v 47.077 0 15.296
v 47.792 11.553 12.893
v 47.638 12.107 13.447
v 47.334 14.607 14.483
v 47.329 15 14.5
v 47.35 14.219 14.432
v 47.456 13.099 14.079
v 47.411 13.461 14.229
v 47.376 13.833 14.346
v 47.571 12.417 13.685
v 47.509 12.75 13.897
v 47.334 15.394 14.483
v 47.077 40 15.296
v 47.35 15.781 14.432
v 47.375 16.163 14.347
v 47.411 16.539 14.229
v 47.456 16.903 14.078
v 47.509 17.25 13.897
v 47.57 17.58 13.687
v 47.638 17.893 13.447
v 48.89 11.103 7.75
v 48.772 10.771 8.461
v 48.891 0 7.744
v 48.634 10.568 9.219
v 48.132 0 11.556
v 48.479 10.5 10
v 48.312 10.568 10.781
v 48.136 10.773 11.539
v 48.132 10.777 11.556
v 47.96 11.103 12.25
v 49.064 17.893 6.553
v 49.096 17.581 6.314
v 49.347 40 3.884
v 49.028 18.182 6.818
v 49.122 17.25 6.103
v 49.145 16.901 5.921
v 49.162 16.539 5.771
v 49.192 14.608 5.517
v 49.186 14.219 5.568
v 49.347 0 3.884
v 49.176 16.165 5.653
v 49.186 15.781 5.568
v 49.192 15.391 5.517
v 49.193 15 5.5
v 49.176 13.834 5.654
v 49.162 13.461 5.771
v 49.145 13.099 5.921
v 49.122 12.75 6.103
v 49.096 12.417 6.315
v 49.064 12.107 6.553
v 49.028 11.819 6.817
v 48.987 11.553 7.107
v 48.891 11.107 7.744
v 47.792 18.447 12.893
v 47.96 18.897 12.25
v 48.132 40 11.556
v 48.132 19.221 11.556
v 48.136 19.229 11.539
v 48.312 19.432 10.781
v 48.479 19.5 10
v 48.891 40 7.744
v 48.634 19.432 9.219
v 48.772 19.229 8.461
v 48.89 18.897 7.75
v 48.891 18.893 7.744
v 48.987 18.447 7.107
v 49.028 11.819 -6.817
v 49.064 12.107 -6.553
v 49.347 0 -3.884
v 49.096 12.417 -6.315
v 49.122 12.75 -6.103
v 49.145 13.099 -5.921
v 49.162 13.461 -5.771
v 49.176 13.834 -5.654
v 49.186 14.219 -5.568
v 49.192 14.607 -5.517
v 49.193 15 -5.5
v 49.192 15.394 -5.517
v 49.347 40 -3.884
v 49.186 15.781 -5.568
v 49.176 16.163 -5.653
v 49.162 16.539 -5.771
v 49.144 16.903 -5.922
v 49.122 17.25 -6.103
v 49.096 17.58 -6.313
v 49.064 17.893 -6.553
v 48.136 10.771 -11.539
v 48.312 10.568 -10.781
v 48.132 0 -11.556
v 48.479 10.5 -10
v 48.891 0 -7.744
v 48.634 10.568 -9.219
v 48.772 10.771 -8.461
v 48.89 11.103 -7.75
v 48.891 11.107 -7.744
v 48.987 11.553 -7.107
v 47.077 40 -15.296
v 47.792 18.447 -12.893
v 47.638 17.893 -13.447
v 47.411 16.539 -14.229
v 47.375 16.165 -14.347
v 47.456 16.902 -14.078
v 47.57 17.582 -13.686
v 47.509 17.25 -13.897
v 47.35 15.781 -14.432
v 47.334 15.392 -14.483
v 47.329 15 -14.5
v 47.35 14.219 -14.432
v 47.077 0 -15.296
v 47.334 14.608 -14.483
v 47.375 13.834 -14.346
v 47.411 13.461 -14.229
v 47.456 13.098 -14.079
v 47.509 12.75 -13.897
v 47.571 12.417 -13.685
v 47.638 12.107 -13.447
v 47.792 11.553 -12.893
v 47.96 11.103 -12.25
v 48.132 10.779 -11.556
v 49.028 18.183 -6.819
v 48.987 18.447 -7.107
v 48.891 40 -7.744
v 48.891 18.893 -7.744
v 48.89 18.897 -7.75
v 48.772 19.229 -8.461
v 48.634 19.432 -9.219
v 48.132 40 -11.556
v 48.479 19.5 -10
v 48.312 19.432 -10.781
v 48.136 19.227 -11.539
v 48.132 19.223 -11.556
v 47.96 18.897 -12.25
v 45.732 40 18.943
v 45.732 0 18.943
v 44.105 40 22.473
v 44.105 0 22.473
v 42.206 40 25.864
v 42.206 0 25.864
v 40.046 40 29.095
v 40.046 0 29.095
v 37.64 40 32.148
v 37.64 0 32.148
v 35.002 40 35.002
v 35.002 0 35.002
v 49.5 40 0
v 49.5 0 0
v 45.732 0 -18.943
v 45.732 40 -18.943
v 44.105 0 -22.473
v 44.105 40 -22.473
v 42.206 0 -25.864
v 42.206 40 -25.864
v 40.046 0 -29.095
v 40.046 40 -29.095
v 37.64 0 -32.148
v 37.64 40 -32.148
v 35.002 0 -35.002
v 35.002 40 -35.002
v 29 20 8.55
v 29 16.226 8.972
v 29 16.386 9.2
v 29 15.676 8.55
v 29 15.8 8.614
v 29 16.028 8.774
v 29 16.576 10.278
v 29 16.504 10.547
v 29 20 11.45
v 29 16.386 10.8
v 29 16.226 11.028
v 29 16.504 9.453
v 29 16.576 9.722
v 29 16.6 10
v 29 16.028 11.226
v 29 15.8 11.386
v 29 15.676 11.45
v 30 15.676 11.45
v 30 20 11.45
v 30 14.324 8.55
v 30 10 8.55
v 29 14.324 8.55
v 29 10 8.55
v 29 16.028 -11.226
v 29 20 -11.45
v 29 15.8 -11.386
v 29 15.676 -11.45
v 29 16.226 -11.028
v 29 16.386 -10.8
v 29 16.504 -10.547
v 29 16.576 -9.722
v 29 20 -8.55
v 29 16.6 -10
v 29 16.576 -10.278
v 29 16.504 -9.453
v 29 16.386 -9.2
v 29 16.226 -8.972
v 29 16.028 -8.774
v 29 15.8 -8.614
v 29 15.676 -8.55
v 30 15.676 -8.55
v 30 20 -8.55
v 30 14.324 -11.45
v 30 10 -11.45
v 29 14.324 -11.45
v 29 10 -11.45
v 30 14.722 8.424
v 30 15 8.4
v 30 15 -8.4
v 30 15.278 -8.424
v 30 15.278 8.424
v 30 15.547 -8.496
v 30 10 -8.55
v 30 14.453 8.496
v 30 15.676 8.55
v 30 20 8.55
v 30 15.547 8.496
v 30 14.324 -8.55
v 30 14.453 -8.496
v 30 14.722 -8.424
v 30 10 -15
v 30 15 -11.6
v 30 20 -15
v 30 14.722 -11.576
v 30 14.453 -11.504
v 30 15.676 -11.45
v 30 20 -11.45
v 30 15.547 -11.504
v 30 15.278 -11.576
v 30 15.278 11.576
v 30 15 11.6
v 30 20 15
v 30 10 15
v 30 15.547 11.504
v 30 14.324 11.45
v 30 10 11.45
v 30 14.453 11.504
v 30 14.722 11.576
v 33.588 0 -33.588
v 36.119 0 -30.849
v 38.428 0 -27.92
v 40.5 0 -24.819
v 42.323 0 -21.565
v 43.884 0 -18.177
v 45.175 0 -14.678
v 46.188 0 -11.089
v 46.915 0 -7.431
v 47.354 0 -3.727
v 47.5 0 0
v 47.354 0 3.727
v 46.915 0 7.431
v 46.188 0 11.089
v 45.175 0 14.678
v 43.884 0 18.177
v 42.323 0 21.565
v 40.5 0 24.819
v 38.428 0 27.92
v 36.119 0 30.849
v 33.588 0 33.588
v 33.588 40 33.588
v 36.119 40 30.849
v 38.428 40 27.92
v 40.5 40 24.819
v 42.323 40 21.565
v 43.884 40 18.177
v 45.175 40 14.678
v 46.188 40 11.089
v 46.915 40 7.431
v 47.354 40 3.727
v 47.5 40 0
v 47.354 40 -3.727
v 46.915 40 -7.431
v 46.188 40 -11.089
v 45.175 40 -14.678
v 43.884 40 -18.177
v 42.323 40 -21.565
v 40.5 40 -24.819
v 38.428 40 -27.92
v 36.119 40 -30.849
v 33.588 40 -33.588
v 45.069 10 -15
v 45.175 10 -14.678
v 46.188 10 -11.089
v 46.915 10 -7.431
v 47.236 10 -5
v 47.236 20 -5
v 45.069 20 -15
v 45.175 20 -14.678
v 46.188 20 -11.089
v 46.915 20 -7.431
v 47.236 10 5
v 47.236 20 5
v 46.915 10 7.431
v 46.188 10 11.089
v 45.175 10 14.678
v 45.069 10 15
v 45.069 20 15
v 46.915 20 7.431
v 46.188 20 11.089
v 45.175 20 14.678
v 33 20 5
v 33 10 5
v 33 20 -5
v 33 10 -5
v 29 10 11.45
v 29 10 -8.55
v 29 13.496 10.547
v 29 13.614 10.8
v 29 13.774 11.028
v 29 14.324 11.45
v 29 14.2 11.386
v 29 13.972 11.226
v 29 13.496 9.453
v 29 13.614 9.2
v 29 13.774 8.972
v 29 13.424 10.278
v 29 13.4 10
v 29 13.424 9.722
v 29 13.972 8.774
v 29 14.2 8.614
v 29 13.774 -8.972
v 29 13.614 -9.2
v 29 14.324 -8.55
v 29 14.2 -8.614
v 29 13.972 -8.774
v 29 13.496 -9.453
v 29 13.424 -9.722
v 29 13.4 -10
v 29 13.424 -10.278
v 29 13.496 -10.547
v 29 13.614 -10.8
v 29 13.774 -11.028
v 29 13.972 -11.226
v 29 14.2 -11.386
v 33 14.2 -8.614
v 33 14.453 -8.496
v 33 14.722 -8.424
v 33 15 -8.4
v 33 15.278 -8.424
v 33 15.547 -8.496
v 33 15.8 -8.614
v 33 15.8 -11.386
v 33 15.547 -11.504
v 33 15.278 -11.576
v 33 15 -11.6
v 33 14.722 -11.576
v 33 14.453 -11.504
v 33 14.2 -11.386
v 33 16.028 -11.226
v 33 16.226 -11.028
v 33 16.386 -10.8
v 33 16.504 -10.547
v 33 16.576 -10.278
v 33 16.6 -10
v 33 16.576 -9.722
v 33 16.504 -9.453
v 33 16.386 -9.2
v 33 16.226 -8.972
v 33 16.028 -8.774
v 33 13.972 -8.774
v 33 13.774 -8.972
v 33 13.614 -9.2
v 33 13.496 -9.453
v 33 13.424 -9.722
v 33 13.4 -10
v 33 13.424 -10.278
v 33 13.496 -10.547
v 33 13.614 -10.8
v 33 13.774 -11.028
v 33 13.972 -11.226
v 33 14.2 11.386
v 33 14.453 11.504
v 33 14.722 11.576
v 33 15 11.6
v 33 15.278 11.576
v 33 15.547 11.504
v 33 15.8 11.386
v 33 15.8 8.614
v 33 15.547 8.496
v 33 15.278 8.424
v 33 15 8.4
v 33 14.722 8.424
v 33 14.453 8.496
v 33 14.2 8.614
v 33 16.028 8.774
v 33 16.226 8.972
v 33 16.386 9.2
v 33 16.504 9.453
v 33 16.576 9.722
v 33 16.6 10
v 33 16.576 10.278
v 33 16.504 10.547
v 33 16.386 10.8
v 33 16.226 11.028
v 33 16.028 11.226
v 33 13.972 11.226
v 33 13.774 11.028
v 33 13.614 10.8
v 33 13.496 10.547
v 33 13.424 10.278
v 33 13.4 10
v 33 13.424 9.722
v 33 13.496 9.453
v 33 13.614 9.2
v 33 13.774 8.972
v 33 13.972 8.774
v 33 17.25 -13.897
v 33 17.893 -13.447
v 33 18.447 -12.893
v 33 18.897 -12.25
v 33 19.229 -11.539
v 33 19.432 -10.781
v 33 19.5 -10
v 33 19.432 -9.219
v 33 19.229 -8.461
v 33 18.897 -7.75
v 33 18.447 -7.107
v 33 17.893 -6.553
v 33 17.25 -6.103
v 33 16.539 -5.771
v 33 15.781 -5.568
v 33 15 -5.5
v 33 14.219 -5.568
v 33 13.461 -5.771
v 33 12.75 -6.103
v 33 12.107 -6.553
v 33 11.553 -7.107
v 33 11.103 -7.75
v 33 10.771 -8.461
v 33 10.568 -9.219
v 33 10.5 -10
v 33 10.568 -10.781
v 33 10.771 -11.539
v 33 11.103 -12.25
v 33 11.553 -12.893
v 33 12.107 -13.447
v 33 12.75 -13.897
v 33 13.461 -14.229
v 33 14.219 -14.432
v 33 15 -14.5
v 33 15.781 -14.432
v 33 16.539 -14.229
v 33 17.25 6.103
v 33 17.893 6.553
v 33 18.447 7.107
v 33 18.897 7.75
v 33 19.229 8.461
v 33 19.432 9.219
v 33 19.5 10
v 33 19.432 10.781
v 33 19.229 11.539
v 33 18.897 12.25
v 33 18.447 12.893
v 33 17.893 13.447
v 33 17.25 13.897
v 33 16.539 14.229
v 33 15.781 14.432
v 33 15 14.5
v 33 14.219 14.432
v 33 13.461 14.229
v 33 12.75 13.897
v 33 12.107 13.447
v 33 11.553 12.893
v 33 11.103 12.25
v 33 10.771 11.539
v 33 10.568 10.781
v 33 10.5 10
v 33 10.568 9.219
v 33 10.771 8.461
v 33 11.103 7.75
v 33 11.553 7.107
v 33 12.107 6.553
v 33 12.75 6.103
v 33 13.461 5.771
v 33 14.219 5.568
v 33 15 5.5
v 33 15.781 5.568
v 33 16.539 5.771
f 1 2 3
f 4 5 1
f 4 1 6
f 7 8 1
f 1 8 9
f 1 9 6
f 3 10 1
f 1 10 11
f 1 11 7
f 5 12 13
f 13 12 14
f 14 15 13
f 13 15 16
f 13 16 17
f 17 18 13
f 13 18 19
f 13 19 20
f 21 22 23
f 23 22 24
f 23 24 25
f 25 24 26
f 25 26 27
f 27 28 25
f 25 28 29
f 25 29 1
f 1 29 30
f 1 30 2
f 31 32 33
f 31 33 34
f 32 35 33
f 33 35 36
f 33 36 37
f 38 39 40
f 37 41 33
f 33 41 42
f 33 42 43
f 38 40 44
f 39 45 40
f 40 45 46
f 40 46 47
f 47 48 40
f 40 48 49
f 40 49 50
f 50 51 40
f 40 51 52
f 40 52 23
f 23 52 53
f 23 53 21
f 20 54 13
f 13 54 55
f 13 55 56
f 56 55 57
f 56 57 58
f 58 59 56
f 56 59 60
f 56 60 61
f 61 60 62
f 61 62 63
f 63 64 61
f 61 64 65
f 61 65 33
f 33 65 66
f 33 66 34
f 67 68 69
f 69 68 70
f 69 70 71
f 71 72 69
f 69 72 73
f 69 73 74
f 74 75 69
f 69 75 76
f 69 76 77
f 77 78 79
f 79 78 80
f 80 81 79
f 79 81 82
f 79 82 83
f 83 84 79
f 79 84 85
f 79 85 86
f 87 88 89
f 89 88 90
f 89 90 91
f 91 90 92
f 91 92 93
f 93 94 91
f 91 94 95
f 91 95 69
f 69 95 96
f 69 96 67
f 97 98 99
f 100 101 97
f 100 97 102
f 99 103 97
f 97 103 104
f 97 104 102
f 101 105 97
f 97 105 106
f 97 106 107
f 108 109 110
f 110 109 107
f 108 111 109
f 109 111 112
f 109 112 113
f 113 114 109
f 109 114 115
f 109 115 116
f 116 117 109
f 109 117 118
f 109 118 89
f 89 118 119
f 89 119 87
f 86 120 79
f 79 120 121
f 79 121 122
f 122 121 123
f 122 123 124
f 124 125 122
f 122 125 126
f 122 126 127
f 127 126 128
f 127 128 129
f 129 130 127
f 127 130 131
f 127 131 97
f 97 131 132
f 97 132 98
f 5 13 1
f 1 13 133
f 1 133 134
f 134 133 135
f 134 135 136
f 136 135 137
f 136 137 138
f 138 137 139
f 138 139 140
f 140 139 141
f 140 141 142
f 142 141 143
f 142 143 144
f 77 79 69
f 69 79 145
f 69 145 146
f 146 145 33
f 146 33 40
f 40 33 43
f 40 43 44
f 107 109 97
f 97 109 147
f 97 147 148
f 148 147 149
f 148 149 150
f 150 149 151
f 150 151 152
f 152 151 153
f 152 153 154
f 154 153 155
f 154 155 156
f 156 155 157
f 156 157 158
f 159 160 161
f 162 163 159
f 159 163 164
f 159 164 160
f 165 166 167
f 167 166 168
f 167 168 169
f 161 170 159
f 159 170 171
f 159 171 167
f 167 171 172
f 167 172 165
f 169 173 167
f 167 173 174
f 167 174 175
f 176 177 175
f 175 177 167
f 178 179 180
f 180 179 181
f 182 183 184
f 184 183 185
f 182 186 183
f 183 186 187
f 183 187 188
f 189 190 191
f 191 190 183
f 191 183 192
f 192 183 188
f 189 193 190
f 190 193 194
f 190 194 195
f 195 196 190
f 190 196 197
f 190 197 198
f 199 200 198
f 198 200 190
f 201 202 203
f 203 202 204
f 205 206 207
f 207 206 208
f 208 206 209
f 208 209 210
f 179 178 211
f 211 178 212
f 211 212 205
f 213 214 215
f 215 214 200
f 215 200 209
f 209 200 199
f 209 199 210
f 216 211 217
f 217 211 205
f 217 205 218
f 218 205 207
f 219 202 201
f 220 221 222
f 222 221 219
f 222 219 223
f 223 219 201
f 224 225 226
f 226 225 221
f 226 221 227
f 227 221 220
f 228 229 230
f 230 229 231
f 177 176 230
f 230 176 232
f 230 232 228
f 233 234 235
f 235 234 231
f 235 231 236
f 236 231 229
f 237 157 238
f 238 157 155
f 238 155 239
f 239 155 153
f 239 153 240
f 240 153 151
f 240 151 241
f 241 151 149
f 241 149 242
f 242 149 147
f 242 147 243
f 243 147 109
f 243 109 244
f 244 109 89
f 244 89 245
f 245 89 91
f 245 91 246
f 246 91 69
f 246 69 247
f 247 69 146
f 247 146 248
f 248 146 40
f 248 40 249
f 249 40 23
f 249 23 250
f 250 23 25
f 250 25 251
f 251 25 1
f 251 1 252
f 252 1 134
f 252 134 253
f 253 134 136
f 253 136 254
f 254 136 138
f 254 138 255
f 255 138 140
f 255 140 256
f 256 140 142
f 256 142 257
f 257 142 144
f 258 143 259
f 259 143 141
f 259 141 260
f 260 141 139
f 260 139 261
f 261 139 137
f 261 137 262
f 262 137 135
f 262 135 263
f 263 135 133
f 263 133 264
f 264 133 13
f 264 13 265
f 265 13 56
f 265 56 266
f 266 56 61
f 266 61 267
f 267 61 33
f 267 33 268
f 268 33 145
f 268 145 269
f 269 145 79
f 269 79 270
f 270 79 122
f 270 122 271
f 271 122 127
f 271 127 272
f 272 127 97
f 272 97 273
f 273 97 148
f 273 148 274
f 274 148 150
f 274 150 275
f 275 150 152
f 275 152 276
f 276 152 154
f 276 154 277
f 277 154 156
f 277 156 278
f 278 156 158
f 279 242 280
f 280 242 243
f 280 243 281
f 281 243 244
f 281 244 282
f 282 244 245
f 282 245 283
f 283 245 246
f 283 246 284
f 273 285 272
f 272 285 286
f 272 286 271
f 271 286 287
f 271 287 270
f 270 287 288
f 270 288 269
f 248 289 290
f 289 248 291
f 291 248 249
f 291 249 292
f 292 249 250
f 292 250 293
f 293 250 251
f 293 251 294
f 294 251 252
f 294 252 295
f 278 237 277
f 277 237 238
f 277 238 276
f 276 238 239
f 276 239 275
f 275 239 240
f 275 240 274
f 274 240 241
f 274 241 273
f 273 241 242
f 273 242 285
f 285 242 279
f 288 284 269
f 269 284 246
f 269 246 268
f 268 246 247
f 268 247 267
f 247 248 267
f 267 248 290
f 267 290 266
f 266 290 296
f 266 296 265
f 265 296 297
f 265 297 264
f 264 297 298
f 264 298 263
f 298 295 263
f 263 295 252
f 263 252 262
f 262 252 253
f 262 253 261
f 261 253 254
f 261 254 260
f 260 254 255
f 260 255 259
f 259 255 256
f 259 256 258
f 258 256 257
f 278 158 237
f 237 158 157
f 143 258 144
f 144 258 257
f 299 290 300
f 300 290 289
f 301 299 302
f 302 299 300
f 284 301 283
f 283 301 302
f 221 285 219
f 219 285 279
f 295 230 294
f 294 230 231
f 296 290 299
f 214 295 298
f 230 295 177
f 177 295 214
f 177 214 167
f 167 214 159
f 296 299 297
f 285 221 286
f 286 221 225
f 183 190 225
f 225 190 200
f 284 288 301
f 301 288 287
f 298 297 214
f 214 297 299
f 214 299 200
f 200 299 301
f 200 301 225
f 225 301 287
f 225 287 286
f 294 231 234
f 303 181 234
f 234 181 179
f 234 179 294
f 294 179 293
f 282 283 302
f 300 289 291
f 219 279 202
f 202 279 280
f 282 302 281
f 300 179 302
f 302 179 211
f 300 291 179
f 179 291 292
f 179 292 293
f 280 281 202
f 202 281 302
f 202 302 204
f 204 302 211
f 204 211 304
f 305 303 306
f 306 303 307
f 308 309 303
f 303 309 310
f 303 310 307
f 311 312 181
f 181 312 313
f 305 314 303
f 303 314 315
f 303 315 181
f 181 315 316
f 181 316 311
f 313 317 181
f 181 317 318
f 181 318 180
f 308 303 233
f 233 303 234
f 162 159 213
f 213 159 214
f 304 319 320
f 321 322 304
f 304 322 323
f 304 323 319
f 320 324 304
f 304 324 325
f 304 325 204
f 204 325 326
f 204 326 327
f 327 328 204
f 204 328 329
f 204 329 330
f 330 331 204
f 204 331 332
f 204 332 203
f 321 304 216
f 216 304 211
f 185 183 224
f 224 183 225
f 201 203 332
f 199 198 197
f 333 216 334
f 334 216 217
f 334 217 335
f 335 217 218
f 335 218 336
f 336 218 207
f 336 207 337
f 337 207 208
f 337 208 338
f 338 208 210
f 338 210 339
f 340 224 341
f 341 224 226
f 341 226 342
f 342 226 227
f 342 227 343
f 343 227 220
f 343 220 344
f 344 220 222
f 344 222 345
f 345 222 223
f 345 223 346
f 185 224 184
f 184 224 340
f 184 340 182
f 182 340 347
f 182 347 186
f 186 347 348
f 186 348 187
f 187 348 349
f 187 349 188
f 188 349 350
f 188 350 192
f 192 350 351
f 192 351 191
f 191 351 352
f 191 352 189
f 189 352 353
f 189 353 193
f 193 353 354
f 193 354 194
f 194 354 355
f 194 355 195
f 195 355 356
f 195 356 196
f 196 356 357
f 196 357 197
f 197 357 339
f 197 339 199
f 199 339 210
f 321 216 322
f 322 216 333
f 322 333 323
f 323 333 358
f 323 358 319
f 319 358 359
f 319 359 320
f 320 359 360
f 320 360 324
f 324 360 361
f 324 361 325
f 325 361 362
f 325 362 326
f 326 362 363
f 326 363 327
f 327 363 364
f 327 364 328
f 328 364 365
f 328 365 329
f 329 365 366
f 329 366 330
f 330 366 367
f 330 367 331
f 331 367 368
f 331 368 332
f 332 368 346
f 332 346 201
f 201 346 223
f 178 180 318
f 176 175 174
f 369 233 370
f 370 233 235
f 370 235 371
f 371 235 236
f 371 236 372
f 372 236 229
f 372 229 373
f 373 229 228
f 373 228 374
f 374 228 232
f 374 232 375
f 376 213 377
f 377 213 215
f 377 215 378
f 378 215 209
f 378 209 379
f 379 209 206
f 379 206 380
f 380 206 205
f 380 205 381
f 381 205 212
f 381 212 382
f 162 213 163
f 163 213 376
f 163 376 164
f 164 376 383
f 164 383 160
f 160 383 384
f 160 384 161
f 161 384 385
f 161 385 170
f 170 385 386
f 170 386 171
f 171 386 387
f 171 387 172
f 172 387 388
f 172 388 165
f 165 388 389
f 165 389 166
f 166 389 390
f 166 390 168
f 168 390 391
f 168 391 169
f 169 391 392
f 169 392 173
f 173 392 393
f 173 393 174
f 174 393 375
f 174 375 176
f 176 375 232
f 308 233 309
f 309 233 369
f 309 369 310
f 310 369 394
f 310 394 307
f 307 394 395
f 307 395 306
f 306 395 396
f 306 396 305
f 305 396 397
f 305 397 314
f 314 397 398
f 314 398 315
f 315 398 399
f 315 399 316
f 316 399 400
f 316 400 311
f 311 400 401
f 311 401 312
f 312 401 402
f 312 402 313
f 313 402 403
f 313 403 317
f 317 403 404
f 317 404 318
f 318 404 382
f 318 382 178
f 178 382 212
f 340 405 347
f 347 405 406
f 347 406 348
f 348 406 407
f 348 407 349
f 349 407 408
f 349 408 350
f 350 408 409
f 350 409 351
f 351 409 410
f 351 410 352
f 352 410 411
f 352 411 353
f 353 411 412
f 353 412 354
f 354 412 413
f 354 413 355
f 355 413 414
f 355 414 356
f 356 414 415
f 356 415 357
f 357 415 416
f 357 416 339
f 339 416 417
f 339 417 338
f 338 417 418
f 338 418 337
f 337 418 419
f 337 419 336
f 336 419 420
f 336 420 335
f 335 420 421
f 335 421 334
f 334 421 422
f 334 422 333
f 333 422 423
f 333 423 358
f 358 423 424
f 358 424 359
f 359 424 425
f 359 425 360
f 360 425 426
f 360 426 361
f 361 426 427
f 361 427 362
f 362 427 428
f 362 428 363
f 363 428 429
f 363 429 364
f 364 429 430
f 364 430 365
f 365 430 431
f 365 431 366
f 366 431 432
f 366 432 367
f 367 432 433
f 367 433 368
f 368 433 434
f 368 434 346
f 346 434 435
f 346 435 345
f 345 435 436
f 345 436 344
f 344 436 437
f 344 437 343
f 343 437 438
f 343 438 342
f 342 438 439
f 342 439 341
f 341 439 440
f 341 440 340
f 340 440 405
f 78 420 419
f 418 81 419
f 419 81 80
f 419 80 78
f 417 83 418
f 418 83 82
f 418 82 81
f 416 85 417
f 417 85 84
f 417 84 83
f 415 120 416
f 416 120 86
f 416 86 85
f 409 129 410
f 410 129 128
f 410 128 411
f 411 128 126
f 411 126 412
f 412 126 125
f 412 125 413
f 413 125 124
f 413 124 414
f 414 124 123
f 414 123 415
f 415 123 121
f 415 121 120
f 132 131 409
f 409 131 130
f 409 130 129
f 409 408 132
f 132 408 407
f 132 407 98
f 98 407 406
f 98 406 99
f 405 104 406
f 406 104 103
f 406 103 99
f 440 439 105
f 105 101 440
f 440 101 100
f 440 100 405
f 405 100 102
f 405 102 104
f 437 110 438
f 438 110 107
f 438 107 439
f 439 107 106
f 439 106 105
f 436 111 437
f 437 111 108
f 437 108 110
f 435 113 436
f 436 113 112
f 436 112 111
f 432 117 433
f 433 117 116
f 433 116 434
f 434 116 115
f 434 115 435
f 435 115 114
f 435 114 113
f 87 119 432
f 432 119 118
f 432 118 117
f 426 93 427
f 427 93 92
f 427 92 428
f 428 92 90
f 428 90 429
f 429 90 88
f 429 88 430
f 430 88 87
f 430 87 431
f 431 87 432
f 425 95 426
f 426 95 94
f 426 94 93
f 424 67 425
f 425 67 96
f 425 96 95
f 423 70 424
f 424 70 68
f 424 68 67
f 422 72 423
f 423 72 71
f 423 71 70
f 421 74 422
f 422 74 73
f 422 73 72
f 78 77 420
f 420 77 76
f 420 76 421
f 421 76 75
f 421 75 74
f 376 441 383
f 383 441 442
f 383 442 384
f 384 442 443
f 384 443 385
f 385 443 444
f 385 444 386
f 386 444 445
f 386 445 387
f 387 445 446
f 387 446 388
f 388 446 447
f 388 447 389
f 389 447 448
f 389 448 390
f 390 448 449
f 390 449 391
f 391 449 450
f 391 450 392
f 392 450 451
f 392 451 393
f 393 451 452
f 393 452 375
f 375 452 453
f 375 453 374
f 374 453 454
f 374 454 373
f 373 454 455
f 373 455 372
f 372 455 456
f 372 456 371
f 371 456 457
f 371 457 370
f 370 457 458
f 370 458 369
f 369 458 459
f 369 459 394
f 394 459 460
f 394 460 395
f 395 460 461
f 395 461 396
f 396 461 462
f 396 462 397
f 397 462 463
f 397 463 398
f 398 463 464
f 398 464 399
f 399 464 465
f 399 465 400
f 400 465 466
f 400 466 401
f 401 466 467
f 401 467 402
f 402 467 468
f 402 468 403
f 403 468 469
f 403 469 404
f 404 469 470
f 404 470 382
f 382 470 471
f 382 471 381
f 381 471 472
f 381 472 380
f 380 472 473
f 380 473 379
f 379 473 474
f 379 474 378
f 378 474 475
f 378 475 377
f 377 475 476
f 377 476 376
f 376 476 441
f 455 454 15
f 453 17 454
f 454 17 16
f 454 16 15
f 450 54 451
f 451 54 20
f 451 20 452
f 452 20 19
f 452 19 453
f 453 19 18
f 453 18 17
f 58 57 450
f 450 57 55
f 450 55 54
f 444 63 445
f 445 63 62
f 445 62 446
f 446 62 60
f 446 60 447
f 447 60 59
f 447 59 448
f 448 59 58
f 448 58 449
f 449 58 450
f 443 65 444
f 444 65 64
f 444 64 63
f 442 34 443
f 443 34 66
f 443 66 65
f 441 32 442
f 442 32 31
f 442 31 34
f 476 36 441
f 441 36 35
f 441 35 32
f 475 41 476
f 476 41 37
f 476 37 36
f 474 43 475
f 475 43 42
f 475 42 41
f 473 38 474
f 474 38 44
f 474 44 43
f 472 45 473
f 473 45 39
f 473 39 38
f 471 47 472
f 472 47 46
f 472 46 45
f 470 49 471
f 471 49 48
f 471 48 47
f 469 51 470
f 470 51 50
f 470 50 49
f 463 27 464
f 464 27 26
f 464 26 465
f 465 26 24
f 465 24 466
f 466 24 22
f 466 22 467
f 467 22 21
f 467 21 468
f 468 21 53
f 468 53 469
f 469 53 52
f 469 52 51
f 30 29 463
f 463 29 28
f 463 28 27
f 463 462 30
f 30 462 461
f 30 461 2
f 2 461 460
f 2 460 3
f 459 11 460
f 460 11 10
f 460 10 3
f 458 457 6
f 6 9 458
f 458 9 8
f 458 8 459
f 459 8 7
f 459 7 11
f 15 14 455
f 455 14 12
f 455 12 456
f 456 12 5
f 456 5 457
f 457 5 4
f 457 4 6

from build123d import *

# Parameters (mm, degrees)
SKETCH1_W      = 2
SKETCH1_H      = 40
MAIN_ANGLE     = 90
SUPPORT_DEPTH  = 10
SKETCH6_W      = 1
SKETCH6_H      = 2.9
FIX_2_DEPTH    = 10
SKETCH9_R      = 1.6
HOLES_DEPTH    = 5
SKETCH10_R     = 4.5
BIGHOLES_DEPTH = 17.5


with BuildPart() as part:
    # Sketch1 → Main (revolve, symmetric)
    with BuildSketch(Plane.XY) as main_sk:
        with Locations((48.5, 20)):
            Rectangle(SKETCH1_W, SKETCH1_H)
    revolve(axis=Axis((0, -0.284703924, 0), (0, 1, 0)), revolution_arc=MAIN_ANGLE / 2)
    revolve(main_sk.sketch, axis=Axis((0, -0.284703924, 0), (0, -1, 0)), revolution_arc=MAIN_ANGLE / 2)

    # Sketch2 → Support (add)
    with BuildSketch(Plane(origin=(0, 10, 0), x_dir=(-1, 0, 0), z_dir=(0, -1, 0))):
        with BuildLine():
            Line((-47.236109069, -5), (-33, -5))
            Line((-33, -5), (-33, 5))
            Line((-33, 5), (-47.236109069, 5))
            ThreePointArc((-47.236109069, 5), (-46.422799712, 10.058512159), (-45.069390943, 15))
            Line((-45.069390943, 15), (-30, 15))
            Line((-30, 15), (-30, -15))
            Line((-30, -15), (-45.069390943, -15))
            ThreePointArc((-45.069390943, -15), (-46.422799712, -10.058512159), (-47.236109069, -5))
        make_face()
    extrude(amount=-SUPPORT_DEPTH)

    # Sketch6 → Fix 2 (add)
    with BuildSketch(Plane(origin=(0, 10, 0), x_dir=(1, 0, 0), z_dir=(0, 1, 0))):
        with Locations((29.5, -10)):
            Rectangle(SKETCH6_W, SKETCH6_H)
        with Locations((29.5, 10)):
            Rectangle(SKETCH6_W, SKETCH6_H)
    extrude(amount=FIX_2_DEPTH)

    # Sketch9 → Holes (cut, through all)
    with BuildSketch(Plane(origin=(33, 0, 0), x_dir=(0, 0, -1), z_dir=(1, 0, 0))):
        with Locations((10, 15)):
            Circle(SKETCH9_R)
        with Locations((-10, 15)):
            Circle(SKETCH9_R)
    extrude(amount=-HOLES_DEPTH, mode=Mode.SUBTRACT)

    # Sketch10 → BigHoles (cut, through all)
    with BuildSketch(Plane(origin=(33, 0, 0), x_dir=(0, 0, -1), z_dir=(1, 0, 0))):
        with Locations((10, 15)):
            Circle(SKETCH10_R)
        with Locations((-10, 15)):
            Circle(SKETCH10_R)
    extrude(amount=BIGHOLES_DEPTH, mode=Mode.SUBTRACT)


solid = part.part
